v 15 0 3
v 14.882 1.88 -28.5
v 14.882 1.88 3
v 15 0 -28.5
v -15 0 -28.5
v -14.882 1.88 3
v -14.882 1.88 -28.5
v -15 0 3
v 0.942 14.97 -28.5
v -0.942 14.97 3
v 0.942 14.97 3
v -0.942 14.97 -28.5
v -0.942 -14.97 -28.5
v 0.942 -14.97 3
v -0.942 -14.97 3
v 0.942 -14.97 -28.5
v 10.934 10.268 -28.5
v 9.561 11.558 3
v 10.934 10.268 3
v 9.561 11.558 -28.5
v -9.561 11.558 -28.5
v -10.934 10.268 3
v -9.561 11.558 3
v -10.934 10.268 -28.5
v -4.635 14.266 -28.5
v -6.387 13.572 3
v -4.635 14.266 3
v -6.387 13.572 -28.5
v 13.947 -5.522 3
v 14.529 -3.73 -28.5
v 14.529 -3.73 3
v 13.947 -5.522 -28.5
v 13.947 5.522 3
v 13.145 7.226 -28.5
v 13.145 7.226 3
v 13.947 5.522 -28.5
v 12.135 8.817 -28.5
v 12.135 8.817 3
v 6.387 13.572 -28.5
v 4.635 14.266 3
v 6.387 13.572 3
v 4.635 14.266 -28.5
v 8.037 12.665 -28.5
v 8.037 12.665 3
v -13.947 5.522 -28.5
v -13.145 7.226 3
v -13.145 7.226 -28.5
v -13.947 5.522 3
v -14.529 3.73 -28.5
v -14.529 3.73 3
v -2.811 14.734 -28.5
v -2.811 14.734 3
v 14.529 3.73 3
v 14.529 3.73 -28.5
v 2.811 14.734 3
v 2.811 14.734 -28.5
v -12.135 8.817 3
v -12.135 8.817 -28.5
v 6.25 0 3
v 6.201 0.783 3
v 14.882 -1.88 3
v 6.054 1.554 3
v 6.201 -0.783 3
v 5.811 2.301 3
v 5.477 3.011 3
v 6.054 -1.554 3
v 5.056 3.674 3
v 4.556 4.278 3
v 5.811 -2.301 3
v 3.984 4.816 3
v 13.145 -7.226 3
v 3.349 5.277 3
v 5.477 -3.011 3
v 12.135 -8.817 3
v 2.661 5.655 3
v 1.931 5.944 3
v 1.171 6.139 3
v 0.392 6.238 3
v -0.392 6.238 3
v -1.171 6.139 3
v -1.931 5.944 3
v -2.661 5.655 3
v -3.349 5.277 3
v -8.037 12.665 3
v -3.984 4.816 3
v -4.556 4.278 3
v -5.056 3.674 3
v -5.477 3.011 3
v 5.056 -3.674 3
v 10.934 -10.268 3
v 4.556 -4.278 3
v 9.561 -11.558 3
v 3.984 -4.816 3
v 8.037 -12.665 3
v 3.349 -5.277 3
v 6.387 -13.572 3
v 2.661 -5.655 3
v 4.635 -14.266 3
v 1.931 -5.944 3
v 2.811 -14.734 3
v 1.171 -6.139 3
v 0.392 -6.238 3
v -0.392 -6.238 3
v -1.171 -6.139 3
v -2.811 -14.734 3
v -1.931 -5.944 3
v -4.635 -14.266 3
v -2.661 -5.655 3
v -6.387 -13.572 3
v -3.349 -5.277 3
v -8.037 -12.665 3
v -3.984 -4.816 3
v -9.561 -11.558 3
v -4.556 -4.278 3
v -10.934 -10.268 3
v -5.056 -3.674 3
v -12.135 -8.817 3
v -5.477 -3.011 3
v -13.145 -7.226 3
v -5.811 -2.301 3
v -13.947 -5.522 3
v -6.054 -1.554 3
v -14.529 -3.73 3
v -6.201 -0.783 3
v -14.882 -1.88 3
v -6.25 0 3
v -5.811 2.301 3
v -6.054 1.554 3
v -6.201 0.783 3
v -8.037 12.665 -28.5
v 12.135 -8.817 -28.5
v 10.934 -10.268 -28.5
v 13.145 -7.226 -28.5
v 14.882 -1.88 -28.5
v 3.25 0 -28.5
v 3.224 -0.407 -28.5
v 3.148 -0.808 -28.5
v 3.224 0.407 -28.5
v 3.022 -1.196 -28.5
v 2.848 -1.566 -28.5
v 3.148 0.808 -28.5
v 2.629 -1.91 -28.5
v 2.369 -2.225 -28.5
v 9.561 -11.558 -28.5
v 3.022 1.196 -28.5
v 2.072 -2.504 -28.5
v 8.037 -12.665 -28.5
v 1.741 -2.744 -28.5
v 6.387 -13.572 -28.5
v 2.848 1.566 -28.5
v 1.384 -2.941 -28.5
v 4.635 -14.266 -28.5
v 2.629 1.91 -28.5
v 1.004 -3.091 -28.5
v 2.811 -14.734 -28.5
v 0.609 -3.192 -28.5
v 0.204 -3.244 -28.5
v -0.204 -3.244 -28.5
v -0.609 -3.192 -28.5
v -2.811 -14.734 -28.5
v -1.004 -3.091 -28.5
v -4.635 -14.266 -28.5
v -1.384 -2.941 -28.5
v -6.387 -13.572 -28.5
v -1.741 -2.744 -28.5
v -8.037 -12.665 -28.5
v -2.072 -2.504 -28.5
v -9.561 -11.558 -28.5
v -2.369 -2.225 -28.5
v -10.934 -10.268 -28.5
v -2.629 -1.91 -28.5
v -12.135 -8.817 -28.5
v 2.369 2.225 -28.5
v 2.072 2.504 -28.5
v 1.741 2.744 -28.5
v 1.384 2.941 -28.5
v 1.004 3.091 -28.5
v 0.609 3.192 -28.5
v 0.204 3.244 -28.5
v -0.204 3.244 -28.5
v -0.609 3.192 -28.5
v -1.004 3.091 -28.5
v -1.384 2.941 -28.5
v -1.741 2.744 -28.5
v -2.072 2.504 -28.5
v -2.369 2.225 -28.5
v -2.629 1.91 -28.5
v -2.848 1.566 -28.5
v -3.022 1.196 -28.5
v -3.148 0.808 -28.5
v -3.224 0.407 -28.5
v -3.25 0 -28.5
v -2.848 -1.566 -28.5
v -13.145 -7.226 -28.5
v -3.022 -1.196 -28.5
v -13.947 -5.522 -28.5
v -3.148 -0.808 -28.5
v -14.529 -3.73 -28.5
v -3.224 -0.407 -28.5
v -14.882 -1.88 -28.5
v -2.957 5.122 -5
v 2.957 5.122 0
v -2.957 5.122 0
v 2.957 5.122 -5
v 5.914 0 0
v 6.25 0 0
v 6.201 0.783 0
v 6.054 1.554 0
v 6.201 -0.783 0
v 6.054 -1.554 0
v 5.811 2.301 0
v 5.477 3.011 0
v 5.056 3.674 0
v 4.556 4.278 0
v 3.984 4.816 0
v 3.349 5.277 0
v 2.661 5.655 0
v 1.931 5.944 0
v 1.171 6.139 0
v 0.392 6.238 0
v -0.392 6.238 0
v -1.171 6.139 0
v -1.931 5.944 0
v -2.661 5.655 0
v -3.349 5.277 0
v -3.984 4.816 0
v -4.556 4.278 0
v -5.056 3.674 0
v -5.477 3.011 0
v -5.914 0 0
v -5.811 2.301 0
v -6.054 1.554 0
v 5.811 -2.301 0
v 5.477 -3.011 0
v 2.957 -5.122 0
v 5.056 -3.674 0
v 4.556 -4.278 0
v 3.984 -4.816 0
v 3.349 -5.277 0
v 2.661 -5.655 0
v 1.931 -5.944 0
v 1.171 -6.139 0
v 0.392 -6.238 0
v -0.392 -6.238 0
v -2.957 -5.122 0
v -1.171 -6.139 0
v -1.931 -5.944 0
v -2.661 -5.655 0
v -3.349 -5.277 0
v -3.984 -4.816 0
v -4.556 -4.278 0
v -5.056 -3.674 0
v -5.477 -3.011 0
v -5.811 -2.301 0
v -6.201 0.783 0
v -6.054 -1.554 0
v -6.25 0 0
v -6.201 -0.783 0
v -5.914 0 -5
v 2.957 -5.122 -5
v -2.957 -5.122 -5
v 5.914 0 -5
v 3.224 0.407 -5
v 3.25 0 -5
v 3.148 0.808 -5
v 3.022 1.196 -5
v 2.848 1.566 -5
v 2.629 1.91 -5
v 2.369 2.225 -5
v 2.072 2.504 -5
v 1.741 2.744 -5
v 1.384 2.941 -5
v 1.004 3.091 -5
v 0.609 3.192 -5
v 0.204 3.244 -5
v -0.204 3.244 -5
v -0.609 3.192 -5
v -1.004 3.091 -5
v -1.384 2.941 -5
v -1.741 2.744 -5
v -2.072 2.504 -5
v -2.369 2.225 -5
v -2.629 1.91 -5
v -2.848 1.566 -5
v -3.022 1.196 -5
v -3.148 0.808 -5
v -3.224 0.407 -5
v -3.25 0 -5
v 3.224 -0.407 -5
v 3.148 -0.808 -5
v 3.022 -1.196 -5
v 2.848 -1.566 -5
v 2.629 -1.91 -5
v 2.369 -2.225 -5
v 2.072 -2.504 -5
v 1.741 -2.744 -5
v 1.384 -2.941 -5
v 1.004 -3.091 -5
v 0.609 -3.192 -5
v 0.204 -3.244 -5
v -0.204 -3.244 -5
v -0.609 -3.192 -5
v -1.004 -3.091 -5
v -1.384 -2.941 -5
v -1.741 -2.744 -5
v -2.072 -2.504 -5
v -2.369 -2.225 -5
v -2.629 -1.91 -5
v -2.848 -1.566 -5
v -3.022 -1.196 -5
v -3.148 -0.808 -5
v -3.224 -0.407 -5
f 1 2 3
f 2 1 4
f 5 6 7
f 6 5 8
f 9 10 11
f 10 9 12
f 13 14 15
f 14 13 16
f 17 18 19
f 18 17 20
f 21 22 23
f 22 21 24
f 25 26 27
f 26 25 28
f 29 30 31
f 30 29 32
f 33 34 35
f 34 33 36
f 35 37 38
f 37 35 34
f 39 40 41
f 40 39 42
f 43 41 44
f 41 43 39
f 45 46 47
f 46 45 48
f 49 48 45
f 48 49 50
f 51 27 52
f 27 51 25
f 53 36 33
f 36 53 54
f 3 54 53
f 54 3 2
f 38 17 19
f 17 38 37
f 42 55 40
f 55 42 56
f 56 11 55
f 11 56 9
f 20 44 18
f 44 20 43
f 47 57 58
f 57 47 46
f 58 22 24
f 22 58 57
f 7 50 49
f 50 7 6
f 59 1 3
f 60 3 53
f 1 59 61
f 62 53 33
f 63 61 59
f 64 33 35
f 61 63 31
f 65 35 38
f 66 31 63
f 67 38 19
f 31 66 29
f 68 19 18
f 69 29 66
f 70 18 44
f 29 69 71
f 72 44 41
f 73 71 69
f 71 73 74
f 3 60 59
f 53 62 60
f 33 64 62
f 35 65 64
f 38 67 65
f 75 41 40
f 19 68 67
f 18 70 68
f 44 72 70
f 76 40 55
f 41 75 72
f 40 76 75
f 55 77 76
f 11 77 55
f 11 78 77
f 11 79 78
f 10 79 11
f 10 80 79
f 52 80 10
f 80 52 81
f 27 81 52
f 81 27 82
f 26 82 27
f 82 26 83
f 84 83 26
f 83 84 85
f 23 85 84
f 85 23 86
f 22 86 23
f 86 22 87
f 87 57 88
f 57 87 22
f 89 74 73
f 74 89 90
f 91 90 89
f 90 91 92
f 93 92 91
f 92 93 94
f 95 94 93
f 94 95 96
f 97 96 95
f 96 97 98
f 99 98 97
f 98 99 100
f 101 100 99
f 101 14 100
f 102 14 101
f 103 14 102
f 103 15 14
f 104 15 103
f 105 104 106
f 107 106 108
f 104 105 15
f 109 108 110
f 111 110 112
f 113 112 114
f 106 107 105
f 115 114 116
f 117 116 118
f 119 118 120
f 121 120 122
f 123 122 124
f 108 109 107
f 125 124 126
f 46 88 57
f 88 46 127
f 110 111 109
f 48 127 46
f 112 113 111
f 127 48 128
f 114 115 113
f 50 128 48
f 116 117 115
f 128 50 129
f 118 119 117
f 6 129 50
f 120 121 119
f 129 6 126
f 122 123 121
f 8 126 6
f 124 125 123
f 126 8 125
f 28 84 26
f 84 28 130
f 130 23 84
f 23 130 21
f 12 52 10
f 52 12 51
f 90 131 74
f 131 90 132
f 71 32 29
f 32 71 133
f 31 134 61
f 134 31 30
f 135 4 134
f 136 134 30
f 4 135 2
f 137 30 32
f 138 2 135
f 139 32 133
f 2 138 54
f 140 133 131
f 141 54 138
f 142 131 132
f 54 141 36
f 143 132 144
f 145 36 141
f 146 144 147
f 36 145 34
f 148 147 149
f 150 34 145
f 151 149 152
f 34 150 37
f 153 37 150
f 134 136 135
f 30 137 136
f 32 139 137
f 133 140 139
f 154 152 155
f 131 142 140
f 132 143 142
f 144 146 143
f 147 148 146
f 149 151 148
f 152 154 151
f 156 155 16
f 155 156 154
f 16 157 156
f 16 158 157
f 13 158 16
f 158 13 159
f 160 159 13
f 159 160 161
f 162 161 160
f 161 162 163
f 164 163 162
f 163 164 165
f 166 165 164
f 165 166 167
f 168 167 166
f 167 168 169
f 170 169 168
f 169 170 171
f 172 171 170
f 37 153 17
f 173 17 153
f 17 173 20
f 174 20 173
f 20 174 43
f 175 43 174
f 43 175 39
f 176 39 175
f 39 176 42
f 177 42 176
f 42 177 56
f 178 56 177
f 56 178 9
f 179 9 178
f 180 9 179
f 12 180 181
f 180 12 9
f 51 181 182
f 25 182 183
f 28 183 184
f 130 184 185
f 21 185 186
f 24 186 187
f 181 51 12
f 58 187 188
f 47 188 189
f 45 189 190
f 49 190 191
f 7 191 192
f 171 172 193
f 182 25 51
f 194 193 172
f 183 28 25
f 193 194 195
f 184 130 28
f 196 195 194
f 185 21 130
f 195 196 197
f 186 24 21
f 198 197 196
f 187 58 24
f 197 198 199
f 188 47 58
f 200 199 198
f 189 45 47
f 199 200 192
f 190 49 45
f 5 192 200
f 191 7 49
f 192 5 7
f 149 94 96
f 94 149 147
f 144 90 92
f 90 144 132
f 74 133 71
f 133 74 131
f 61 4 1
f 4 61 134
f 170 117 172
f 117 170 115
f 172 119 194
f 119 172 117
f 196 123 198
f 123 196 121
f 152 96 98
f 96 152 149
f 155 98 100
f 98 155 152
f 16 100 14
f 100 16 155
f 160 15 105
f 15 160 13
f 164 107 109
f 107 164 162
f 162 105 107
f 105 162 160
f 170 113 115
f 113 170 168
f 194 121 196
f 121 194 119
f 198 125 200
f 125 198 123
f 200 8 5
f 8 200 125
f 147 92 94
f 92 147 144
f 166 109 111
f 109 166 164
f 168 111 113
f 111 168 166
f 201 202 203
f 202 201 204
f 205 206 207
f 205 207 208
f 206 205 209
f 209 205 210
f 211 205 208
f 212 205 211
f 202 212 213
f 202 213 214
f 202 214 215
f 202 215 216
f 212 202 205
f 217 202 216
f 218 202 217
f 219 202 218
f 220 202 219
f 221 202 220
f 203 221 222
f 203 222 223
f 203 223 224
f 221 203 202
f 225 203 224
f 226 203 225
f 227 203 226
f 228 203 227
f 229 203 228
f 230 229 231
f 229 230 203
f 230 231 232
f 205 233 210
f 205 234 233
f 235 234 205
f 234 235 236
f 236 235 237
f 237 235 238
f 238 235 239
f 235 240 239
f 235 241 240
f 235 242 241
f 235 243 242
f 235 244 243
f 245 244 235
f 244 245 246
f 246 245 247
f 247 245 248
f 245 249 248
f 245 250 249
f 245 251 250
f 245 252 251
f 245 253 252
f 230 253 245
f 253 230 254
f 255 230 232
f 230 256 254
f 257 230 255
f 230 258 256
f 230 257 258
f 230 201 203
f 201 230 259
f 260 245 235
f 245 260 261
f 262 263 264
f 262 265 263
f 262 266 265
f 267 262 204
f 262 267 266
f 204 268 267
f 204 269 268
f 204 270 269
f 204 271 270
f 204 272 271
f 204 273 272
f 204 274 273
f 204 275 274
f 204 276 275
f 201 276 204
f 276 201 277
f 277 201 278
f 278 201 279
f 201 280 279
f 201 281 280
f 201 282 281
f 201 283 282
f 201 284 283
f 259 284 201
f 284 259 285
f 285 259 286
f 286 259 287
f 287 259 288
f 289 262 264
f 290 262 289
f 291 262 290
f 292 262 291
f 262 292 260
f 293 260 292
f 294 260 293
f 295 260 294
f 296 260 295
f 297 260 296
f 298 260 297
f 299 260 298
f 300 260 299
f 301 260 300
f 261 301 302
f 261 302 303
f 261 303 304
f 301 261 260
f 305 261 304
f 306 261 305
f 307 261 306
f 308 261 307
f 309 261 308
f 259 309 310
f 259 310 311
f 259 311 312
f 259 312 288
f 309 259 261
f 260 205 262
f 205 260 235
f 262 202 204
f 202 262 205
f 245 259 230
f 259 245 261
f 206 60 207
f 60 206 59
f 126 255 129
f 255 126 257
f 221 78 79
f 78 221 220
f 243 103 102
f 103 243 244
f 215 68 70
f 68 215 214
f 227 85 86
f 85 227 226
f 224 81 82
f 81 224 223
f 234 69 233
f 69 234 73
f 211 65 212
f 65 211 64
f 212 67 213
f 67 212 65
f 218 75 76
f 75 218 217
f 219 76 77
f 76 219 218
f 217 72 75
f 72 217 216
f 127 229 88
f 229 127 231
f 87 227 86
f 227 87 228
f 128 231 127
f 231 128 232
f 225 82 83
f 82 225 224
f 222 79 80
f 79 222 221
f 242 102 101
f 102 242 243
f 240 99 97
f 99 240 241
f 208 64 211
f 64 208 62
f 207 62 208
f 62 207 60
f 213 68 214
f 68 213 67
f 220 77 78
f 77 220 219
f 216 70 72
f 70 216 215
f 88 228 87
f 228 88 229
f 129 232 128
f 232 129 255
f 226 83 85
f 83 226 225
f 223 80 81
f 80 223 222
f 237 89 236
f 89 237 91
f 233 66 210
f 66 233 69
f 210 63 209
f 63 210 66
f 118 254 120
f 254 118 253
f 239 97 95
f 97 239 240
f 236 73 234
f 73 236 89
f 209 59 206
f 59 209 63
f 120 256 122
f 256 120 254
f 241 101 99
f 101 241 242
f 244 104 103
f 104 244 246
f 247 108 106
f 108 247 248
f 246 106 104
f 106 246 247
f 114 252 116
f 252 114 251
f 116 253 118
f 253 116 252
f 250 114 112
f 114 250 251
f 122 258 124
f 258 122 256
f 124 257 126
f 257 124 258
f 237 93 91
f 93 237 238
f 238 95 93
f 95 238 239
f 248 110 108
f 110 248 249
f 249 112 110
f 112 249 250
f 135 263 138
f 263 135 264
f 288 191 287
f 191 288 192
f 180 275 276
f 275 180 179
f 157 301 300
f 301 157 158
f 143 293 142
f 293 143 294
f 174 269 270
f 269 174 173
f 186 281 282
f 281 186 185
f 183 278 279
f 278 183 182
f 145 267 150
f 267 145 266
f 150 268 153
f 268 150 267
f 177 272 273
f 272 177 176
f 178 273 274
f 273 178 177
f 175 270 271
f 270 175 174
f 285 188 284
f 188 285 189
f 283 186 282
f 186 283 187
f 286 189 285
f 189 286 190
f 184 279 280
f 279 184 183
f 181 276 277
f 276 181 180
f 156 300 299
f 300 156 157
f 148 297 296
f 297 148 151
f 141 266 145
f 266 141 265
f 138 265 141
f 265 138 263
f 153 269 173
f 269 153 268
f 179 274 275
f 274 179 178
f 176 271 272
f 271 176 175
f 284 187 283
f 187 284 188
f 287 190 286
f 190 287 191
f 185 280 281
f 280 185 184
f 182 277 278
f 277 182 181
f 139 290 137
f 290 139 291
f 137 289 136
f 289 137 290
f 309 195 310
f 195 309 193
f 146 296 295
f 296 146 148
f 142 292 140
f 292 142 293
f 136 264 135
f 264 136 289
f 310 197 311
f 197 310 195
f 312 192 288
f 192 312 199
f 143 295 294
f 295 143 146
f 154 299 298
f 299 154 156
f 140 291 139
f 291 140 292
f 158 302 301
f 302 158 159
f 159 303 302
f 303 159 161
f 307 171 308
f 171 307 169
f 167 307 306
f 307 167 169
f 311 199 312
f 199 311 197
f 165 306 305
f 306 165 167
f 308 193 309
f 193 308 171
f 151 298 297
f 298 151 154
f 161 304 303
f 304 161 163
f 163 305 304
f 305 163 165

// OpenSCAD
$fn = 50;


difference() {
	union() {
		translate(v = [0, 0, -28.5000000000]) {
			cylinder(h = 31.5000000000, r = 15.0000000000);
		}
		#translate(v = [0, 0, -30.0000000000]) {
			cylinder(h = 30, r = 2.8750000000);
		}
	}
	union() {
		translate(v = [0, 0, 0]) {
			rotate(a = [0, 0, 0]) {
				difference() {
					union() {
						translate(v = [0, 0, -5]) {
							linear_extrude(height = 5) {
								polygon(points = [[5.9142500000, 0.0000000000], [2.9571250000, 5.1218907443], [-2.9571250000, 5.1218907443], [-5.9142500000, 0.0000000000], [-2.9571250000, -5.1218907443], [2.9571250000, -5.1218907443]]);
							}
						}
					}
					union();
				}
			}
		}
		#cylinder(h = 3, r = 6.2500000000);
		#translate(v = [0, 0, -100.0000000000]) {
			cylinder(h = 200, r = 3.2500000000);
		}
	}
}
